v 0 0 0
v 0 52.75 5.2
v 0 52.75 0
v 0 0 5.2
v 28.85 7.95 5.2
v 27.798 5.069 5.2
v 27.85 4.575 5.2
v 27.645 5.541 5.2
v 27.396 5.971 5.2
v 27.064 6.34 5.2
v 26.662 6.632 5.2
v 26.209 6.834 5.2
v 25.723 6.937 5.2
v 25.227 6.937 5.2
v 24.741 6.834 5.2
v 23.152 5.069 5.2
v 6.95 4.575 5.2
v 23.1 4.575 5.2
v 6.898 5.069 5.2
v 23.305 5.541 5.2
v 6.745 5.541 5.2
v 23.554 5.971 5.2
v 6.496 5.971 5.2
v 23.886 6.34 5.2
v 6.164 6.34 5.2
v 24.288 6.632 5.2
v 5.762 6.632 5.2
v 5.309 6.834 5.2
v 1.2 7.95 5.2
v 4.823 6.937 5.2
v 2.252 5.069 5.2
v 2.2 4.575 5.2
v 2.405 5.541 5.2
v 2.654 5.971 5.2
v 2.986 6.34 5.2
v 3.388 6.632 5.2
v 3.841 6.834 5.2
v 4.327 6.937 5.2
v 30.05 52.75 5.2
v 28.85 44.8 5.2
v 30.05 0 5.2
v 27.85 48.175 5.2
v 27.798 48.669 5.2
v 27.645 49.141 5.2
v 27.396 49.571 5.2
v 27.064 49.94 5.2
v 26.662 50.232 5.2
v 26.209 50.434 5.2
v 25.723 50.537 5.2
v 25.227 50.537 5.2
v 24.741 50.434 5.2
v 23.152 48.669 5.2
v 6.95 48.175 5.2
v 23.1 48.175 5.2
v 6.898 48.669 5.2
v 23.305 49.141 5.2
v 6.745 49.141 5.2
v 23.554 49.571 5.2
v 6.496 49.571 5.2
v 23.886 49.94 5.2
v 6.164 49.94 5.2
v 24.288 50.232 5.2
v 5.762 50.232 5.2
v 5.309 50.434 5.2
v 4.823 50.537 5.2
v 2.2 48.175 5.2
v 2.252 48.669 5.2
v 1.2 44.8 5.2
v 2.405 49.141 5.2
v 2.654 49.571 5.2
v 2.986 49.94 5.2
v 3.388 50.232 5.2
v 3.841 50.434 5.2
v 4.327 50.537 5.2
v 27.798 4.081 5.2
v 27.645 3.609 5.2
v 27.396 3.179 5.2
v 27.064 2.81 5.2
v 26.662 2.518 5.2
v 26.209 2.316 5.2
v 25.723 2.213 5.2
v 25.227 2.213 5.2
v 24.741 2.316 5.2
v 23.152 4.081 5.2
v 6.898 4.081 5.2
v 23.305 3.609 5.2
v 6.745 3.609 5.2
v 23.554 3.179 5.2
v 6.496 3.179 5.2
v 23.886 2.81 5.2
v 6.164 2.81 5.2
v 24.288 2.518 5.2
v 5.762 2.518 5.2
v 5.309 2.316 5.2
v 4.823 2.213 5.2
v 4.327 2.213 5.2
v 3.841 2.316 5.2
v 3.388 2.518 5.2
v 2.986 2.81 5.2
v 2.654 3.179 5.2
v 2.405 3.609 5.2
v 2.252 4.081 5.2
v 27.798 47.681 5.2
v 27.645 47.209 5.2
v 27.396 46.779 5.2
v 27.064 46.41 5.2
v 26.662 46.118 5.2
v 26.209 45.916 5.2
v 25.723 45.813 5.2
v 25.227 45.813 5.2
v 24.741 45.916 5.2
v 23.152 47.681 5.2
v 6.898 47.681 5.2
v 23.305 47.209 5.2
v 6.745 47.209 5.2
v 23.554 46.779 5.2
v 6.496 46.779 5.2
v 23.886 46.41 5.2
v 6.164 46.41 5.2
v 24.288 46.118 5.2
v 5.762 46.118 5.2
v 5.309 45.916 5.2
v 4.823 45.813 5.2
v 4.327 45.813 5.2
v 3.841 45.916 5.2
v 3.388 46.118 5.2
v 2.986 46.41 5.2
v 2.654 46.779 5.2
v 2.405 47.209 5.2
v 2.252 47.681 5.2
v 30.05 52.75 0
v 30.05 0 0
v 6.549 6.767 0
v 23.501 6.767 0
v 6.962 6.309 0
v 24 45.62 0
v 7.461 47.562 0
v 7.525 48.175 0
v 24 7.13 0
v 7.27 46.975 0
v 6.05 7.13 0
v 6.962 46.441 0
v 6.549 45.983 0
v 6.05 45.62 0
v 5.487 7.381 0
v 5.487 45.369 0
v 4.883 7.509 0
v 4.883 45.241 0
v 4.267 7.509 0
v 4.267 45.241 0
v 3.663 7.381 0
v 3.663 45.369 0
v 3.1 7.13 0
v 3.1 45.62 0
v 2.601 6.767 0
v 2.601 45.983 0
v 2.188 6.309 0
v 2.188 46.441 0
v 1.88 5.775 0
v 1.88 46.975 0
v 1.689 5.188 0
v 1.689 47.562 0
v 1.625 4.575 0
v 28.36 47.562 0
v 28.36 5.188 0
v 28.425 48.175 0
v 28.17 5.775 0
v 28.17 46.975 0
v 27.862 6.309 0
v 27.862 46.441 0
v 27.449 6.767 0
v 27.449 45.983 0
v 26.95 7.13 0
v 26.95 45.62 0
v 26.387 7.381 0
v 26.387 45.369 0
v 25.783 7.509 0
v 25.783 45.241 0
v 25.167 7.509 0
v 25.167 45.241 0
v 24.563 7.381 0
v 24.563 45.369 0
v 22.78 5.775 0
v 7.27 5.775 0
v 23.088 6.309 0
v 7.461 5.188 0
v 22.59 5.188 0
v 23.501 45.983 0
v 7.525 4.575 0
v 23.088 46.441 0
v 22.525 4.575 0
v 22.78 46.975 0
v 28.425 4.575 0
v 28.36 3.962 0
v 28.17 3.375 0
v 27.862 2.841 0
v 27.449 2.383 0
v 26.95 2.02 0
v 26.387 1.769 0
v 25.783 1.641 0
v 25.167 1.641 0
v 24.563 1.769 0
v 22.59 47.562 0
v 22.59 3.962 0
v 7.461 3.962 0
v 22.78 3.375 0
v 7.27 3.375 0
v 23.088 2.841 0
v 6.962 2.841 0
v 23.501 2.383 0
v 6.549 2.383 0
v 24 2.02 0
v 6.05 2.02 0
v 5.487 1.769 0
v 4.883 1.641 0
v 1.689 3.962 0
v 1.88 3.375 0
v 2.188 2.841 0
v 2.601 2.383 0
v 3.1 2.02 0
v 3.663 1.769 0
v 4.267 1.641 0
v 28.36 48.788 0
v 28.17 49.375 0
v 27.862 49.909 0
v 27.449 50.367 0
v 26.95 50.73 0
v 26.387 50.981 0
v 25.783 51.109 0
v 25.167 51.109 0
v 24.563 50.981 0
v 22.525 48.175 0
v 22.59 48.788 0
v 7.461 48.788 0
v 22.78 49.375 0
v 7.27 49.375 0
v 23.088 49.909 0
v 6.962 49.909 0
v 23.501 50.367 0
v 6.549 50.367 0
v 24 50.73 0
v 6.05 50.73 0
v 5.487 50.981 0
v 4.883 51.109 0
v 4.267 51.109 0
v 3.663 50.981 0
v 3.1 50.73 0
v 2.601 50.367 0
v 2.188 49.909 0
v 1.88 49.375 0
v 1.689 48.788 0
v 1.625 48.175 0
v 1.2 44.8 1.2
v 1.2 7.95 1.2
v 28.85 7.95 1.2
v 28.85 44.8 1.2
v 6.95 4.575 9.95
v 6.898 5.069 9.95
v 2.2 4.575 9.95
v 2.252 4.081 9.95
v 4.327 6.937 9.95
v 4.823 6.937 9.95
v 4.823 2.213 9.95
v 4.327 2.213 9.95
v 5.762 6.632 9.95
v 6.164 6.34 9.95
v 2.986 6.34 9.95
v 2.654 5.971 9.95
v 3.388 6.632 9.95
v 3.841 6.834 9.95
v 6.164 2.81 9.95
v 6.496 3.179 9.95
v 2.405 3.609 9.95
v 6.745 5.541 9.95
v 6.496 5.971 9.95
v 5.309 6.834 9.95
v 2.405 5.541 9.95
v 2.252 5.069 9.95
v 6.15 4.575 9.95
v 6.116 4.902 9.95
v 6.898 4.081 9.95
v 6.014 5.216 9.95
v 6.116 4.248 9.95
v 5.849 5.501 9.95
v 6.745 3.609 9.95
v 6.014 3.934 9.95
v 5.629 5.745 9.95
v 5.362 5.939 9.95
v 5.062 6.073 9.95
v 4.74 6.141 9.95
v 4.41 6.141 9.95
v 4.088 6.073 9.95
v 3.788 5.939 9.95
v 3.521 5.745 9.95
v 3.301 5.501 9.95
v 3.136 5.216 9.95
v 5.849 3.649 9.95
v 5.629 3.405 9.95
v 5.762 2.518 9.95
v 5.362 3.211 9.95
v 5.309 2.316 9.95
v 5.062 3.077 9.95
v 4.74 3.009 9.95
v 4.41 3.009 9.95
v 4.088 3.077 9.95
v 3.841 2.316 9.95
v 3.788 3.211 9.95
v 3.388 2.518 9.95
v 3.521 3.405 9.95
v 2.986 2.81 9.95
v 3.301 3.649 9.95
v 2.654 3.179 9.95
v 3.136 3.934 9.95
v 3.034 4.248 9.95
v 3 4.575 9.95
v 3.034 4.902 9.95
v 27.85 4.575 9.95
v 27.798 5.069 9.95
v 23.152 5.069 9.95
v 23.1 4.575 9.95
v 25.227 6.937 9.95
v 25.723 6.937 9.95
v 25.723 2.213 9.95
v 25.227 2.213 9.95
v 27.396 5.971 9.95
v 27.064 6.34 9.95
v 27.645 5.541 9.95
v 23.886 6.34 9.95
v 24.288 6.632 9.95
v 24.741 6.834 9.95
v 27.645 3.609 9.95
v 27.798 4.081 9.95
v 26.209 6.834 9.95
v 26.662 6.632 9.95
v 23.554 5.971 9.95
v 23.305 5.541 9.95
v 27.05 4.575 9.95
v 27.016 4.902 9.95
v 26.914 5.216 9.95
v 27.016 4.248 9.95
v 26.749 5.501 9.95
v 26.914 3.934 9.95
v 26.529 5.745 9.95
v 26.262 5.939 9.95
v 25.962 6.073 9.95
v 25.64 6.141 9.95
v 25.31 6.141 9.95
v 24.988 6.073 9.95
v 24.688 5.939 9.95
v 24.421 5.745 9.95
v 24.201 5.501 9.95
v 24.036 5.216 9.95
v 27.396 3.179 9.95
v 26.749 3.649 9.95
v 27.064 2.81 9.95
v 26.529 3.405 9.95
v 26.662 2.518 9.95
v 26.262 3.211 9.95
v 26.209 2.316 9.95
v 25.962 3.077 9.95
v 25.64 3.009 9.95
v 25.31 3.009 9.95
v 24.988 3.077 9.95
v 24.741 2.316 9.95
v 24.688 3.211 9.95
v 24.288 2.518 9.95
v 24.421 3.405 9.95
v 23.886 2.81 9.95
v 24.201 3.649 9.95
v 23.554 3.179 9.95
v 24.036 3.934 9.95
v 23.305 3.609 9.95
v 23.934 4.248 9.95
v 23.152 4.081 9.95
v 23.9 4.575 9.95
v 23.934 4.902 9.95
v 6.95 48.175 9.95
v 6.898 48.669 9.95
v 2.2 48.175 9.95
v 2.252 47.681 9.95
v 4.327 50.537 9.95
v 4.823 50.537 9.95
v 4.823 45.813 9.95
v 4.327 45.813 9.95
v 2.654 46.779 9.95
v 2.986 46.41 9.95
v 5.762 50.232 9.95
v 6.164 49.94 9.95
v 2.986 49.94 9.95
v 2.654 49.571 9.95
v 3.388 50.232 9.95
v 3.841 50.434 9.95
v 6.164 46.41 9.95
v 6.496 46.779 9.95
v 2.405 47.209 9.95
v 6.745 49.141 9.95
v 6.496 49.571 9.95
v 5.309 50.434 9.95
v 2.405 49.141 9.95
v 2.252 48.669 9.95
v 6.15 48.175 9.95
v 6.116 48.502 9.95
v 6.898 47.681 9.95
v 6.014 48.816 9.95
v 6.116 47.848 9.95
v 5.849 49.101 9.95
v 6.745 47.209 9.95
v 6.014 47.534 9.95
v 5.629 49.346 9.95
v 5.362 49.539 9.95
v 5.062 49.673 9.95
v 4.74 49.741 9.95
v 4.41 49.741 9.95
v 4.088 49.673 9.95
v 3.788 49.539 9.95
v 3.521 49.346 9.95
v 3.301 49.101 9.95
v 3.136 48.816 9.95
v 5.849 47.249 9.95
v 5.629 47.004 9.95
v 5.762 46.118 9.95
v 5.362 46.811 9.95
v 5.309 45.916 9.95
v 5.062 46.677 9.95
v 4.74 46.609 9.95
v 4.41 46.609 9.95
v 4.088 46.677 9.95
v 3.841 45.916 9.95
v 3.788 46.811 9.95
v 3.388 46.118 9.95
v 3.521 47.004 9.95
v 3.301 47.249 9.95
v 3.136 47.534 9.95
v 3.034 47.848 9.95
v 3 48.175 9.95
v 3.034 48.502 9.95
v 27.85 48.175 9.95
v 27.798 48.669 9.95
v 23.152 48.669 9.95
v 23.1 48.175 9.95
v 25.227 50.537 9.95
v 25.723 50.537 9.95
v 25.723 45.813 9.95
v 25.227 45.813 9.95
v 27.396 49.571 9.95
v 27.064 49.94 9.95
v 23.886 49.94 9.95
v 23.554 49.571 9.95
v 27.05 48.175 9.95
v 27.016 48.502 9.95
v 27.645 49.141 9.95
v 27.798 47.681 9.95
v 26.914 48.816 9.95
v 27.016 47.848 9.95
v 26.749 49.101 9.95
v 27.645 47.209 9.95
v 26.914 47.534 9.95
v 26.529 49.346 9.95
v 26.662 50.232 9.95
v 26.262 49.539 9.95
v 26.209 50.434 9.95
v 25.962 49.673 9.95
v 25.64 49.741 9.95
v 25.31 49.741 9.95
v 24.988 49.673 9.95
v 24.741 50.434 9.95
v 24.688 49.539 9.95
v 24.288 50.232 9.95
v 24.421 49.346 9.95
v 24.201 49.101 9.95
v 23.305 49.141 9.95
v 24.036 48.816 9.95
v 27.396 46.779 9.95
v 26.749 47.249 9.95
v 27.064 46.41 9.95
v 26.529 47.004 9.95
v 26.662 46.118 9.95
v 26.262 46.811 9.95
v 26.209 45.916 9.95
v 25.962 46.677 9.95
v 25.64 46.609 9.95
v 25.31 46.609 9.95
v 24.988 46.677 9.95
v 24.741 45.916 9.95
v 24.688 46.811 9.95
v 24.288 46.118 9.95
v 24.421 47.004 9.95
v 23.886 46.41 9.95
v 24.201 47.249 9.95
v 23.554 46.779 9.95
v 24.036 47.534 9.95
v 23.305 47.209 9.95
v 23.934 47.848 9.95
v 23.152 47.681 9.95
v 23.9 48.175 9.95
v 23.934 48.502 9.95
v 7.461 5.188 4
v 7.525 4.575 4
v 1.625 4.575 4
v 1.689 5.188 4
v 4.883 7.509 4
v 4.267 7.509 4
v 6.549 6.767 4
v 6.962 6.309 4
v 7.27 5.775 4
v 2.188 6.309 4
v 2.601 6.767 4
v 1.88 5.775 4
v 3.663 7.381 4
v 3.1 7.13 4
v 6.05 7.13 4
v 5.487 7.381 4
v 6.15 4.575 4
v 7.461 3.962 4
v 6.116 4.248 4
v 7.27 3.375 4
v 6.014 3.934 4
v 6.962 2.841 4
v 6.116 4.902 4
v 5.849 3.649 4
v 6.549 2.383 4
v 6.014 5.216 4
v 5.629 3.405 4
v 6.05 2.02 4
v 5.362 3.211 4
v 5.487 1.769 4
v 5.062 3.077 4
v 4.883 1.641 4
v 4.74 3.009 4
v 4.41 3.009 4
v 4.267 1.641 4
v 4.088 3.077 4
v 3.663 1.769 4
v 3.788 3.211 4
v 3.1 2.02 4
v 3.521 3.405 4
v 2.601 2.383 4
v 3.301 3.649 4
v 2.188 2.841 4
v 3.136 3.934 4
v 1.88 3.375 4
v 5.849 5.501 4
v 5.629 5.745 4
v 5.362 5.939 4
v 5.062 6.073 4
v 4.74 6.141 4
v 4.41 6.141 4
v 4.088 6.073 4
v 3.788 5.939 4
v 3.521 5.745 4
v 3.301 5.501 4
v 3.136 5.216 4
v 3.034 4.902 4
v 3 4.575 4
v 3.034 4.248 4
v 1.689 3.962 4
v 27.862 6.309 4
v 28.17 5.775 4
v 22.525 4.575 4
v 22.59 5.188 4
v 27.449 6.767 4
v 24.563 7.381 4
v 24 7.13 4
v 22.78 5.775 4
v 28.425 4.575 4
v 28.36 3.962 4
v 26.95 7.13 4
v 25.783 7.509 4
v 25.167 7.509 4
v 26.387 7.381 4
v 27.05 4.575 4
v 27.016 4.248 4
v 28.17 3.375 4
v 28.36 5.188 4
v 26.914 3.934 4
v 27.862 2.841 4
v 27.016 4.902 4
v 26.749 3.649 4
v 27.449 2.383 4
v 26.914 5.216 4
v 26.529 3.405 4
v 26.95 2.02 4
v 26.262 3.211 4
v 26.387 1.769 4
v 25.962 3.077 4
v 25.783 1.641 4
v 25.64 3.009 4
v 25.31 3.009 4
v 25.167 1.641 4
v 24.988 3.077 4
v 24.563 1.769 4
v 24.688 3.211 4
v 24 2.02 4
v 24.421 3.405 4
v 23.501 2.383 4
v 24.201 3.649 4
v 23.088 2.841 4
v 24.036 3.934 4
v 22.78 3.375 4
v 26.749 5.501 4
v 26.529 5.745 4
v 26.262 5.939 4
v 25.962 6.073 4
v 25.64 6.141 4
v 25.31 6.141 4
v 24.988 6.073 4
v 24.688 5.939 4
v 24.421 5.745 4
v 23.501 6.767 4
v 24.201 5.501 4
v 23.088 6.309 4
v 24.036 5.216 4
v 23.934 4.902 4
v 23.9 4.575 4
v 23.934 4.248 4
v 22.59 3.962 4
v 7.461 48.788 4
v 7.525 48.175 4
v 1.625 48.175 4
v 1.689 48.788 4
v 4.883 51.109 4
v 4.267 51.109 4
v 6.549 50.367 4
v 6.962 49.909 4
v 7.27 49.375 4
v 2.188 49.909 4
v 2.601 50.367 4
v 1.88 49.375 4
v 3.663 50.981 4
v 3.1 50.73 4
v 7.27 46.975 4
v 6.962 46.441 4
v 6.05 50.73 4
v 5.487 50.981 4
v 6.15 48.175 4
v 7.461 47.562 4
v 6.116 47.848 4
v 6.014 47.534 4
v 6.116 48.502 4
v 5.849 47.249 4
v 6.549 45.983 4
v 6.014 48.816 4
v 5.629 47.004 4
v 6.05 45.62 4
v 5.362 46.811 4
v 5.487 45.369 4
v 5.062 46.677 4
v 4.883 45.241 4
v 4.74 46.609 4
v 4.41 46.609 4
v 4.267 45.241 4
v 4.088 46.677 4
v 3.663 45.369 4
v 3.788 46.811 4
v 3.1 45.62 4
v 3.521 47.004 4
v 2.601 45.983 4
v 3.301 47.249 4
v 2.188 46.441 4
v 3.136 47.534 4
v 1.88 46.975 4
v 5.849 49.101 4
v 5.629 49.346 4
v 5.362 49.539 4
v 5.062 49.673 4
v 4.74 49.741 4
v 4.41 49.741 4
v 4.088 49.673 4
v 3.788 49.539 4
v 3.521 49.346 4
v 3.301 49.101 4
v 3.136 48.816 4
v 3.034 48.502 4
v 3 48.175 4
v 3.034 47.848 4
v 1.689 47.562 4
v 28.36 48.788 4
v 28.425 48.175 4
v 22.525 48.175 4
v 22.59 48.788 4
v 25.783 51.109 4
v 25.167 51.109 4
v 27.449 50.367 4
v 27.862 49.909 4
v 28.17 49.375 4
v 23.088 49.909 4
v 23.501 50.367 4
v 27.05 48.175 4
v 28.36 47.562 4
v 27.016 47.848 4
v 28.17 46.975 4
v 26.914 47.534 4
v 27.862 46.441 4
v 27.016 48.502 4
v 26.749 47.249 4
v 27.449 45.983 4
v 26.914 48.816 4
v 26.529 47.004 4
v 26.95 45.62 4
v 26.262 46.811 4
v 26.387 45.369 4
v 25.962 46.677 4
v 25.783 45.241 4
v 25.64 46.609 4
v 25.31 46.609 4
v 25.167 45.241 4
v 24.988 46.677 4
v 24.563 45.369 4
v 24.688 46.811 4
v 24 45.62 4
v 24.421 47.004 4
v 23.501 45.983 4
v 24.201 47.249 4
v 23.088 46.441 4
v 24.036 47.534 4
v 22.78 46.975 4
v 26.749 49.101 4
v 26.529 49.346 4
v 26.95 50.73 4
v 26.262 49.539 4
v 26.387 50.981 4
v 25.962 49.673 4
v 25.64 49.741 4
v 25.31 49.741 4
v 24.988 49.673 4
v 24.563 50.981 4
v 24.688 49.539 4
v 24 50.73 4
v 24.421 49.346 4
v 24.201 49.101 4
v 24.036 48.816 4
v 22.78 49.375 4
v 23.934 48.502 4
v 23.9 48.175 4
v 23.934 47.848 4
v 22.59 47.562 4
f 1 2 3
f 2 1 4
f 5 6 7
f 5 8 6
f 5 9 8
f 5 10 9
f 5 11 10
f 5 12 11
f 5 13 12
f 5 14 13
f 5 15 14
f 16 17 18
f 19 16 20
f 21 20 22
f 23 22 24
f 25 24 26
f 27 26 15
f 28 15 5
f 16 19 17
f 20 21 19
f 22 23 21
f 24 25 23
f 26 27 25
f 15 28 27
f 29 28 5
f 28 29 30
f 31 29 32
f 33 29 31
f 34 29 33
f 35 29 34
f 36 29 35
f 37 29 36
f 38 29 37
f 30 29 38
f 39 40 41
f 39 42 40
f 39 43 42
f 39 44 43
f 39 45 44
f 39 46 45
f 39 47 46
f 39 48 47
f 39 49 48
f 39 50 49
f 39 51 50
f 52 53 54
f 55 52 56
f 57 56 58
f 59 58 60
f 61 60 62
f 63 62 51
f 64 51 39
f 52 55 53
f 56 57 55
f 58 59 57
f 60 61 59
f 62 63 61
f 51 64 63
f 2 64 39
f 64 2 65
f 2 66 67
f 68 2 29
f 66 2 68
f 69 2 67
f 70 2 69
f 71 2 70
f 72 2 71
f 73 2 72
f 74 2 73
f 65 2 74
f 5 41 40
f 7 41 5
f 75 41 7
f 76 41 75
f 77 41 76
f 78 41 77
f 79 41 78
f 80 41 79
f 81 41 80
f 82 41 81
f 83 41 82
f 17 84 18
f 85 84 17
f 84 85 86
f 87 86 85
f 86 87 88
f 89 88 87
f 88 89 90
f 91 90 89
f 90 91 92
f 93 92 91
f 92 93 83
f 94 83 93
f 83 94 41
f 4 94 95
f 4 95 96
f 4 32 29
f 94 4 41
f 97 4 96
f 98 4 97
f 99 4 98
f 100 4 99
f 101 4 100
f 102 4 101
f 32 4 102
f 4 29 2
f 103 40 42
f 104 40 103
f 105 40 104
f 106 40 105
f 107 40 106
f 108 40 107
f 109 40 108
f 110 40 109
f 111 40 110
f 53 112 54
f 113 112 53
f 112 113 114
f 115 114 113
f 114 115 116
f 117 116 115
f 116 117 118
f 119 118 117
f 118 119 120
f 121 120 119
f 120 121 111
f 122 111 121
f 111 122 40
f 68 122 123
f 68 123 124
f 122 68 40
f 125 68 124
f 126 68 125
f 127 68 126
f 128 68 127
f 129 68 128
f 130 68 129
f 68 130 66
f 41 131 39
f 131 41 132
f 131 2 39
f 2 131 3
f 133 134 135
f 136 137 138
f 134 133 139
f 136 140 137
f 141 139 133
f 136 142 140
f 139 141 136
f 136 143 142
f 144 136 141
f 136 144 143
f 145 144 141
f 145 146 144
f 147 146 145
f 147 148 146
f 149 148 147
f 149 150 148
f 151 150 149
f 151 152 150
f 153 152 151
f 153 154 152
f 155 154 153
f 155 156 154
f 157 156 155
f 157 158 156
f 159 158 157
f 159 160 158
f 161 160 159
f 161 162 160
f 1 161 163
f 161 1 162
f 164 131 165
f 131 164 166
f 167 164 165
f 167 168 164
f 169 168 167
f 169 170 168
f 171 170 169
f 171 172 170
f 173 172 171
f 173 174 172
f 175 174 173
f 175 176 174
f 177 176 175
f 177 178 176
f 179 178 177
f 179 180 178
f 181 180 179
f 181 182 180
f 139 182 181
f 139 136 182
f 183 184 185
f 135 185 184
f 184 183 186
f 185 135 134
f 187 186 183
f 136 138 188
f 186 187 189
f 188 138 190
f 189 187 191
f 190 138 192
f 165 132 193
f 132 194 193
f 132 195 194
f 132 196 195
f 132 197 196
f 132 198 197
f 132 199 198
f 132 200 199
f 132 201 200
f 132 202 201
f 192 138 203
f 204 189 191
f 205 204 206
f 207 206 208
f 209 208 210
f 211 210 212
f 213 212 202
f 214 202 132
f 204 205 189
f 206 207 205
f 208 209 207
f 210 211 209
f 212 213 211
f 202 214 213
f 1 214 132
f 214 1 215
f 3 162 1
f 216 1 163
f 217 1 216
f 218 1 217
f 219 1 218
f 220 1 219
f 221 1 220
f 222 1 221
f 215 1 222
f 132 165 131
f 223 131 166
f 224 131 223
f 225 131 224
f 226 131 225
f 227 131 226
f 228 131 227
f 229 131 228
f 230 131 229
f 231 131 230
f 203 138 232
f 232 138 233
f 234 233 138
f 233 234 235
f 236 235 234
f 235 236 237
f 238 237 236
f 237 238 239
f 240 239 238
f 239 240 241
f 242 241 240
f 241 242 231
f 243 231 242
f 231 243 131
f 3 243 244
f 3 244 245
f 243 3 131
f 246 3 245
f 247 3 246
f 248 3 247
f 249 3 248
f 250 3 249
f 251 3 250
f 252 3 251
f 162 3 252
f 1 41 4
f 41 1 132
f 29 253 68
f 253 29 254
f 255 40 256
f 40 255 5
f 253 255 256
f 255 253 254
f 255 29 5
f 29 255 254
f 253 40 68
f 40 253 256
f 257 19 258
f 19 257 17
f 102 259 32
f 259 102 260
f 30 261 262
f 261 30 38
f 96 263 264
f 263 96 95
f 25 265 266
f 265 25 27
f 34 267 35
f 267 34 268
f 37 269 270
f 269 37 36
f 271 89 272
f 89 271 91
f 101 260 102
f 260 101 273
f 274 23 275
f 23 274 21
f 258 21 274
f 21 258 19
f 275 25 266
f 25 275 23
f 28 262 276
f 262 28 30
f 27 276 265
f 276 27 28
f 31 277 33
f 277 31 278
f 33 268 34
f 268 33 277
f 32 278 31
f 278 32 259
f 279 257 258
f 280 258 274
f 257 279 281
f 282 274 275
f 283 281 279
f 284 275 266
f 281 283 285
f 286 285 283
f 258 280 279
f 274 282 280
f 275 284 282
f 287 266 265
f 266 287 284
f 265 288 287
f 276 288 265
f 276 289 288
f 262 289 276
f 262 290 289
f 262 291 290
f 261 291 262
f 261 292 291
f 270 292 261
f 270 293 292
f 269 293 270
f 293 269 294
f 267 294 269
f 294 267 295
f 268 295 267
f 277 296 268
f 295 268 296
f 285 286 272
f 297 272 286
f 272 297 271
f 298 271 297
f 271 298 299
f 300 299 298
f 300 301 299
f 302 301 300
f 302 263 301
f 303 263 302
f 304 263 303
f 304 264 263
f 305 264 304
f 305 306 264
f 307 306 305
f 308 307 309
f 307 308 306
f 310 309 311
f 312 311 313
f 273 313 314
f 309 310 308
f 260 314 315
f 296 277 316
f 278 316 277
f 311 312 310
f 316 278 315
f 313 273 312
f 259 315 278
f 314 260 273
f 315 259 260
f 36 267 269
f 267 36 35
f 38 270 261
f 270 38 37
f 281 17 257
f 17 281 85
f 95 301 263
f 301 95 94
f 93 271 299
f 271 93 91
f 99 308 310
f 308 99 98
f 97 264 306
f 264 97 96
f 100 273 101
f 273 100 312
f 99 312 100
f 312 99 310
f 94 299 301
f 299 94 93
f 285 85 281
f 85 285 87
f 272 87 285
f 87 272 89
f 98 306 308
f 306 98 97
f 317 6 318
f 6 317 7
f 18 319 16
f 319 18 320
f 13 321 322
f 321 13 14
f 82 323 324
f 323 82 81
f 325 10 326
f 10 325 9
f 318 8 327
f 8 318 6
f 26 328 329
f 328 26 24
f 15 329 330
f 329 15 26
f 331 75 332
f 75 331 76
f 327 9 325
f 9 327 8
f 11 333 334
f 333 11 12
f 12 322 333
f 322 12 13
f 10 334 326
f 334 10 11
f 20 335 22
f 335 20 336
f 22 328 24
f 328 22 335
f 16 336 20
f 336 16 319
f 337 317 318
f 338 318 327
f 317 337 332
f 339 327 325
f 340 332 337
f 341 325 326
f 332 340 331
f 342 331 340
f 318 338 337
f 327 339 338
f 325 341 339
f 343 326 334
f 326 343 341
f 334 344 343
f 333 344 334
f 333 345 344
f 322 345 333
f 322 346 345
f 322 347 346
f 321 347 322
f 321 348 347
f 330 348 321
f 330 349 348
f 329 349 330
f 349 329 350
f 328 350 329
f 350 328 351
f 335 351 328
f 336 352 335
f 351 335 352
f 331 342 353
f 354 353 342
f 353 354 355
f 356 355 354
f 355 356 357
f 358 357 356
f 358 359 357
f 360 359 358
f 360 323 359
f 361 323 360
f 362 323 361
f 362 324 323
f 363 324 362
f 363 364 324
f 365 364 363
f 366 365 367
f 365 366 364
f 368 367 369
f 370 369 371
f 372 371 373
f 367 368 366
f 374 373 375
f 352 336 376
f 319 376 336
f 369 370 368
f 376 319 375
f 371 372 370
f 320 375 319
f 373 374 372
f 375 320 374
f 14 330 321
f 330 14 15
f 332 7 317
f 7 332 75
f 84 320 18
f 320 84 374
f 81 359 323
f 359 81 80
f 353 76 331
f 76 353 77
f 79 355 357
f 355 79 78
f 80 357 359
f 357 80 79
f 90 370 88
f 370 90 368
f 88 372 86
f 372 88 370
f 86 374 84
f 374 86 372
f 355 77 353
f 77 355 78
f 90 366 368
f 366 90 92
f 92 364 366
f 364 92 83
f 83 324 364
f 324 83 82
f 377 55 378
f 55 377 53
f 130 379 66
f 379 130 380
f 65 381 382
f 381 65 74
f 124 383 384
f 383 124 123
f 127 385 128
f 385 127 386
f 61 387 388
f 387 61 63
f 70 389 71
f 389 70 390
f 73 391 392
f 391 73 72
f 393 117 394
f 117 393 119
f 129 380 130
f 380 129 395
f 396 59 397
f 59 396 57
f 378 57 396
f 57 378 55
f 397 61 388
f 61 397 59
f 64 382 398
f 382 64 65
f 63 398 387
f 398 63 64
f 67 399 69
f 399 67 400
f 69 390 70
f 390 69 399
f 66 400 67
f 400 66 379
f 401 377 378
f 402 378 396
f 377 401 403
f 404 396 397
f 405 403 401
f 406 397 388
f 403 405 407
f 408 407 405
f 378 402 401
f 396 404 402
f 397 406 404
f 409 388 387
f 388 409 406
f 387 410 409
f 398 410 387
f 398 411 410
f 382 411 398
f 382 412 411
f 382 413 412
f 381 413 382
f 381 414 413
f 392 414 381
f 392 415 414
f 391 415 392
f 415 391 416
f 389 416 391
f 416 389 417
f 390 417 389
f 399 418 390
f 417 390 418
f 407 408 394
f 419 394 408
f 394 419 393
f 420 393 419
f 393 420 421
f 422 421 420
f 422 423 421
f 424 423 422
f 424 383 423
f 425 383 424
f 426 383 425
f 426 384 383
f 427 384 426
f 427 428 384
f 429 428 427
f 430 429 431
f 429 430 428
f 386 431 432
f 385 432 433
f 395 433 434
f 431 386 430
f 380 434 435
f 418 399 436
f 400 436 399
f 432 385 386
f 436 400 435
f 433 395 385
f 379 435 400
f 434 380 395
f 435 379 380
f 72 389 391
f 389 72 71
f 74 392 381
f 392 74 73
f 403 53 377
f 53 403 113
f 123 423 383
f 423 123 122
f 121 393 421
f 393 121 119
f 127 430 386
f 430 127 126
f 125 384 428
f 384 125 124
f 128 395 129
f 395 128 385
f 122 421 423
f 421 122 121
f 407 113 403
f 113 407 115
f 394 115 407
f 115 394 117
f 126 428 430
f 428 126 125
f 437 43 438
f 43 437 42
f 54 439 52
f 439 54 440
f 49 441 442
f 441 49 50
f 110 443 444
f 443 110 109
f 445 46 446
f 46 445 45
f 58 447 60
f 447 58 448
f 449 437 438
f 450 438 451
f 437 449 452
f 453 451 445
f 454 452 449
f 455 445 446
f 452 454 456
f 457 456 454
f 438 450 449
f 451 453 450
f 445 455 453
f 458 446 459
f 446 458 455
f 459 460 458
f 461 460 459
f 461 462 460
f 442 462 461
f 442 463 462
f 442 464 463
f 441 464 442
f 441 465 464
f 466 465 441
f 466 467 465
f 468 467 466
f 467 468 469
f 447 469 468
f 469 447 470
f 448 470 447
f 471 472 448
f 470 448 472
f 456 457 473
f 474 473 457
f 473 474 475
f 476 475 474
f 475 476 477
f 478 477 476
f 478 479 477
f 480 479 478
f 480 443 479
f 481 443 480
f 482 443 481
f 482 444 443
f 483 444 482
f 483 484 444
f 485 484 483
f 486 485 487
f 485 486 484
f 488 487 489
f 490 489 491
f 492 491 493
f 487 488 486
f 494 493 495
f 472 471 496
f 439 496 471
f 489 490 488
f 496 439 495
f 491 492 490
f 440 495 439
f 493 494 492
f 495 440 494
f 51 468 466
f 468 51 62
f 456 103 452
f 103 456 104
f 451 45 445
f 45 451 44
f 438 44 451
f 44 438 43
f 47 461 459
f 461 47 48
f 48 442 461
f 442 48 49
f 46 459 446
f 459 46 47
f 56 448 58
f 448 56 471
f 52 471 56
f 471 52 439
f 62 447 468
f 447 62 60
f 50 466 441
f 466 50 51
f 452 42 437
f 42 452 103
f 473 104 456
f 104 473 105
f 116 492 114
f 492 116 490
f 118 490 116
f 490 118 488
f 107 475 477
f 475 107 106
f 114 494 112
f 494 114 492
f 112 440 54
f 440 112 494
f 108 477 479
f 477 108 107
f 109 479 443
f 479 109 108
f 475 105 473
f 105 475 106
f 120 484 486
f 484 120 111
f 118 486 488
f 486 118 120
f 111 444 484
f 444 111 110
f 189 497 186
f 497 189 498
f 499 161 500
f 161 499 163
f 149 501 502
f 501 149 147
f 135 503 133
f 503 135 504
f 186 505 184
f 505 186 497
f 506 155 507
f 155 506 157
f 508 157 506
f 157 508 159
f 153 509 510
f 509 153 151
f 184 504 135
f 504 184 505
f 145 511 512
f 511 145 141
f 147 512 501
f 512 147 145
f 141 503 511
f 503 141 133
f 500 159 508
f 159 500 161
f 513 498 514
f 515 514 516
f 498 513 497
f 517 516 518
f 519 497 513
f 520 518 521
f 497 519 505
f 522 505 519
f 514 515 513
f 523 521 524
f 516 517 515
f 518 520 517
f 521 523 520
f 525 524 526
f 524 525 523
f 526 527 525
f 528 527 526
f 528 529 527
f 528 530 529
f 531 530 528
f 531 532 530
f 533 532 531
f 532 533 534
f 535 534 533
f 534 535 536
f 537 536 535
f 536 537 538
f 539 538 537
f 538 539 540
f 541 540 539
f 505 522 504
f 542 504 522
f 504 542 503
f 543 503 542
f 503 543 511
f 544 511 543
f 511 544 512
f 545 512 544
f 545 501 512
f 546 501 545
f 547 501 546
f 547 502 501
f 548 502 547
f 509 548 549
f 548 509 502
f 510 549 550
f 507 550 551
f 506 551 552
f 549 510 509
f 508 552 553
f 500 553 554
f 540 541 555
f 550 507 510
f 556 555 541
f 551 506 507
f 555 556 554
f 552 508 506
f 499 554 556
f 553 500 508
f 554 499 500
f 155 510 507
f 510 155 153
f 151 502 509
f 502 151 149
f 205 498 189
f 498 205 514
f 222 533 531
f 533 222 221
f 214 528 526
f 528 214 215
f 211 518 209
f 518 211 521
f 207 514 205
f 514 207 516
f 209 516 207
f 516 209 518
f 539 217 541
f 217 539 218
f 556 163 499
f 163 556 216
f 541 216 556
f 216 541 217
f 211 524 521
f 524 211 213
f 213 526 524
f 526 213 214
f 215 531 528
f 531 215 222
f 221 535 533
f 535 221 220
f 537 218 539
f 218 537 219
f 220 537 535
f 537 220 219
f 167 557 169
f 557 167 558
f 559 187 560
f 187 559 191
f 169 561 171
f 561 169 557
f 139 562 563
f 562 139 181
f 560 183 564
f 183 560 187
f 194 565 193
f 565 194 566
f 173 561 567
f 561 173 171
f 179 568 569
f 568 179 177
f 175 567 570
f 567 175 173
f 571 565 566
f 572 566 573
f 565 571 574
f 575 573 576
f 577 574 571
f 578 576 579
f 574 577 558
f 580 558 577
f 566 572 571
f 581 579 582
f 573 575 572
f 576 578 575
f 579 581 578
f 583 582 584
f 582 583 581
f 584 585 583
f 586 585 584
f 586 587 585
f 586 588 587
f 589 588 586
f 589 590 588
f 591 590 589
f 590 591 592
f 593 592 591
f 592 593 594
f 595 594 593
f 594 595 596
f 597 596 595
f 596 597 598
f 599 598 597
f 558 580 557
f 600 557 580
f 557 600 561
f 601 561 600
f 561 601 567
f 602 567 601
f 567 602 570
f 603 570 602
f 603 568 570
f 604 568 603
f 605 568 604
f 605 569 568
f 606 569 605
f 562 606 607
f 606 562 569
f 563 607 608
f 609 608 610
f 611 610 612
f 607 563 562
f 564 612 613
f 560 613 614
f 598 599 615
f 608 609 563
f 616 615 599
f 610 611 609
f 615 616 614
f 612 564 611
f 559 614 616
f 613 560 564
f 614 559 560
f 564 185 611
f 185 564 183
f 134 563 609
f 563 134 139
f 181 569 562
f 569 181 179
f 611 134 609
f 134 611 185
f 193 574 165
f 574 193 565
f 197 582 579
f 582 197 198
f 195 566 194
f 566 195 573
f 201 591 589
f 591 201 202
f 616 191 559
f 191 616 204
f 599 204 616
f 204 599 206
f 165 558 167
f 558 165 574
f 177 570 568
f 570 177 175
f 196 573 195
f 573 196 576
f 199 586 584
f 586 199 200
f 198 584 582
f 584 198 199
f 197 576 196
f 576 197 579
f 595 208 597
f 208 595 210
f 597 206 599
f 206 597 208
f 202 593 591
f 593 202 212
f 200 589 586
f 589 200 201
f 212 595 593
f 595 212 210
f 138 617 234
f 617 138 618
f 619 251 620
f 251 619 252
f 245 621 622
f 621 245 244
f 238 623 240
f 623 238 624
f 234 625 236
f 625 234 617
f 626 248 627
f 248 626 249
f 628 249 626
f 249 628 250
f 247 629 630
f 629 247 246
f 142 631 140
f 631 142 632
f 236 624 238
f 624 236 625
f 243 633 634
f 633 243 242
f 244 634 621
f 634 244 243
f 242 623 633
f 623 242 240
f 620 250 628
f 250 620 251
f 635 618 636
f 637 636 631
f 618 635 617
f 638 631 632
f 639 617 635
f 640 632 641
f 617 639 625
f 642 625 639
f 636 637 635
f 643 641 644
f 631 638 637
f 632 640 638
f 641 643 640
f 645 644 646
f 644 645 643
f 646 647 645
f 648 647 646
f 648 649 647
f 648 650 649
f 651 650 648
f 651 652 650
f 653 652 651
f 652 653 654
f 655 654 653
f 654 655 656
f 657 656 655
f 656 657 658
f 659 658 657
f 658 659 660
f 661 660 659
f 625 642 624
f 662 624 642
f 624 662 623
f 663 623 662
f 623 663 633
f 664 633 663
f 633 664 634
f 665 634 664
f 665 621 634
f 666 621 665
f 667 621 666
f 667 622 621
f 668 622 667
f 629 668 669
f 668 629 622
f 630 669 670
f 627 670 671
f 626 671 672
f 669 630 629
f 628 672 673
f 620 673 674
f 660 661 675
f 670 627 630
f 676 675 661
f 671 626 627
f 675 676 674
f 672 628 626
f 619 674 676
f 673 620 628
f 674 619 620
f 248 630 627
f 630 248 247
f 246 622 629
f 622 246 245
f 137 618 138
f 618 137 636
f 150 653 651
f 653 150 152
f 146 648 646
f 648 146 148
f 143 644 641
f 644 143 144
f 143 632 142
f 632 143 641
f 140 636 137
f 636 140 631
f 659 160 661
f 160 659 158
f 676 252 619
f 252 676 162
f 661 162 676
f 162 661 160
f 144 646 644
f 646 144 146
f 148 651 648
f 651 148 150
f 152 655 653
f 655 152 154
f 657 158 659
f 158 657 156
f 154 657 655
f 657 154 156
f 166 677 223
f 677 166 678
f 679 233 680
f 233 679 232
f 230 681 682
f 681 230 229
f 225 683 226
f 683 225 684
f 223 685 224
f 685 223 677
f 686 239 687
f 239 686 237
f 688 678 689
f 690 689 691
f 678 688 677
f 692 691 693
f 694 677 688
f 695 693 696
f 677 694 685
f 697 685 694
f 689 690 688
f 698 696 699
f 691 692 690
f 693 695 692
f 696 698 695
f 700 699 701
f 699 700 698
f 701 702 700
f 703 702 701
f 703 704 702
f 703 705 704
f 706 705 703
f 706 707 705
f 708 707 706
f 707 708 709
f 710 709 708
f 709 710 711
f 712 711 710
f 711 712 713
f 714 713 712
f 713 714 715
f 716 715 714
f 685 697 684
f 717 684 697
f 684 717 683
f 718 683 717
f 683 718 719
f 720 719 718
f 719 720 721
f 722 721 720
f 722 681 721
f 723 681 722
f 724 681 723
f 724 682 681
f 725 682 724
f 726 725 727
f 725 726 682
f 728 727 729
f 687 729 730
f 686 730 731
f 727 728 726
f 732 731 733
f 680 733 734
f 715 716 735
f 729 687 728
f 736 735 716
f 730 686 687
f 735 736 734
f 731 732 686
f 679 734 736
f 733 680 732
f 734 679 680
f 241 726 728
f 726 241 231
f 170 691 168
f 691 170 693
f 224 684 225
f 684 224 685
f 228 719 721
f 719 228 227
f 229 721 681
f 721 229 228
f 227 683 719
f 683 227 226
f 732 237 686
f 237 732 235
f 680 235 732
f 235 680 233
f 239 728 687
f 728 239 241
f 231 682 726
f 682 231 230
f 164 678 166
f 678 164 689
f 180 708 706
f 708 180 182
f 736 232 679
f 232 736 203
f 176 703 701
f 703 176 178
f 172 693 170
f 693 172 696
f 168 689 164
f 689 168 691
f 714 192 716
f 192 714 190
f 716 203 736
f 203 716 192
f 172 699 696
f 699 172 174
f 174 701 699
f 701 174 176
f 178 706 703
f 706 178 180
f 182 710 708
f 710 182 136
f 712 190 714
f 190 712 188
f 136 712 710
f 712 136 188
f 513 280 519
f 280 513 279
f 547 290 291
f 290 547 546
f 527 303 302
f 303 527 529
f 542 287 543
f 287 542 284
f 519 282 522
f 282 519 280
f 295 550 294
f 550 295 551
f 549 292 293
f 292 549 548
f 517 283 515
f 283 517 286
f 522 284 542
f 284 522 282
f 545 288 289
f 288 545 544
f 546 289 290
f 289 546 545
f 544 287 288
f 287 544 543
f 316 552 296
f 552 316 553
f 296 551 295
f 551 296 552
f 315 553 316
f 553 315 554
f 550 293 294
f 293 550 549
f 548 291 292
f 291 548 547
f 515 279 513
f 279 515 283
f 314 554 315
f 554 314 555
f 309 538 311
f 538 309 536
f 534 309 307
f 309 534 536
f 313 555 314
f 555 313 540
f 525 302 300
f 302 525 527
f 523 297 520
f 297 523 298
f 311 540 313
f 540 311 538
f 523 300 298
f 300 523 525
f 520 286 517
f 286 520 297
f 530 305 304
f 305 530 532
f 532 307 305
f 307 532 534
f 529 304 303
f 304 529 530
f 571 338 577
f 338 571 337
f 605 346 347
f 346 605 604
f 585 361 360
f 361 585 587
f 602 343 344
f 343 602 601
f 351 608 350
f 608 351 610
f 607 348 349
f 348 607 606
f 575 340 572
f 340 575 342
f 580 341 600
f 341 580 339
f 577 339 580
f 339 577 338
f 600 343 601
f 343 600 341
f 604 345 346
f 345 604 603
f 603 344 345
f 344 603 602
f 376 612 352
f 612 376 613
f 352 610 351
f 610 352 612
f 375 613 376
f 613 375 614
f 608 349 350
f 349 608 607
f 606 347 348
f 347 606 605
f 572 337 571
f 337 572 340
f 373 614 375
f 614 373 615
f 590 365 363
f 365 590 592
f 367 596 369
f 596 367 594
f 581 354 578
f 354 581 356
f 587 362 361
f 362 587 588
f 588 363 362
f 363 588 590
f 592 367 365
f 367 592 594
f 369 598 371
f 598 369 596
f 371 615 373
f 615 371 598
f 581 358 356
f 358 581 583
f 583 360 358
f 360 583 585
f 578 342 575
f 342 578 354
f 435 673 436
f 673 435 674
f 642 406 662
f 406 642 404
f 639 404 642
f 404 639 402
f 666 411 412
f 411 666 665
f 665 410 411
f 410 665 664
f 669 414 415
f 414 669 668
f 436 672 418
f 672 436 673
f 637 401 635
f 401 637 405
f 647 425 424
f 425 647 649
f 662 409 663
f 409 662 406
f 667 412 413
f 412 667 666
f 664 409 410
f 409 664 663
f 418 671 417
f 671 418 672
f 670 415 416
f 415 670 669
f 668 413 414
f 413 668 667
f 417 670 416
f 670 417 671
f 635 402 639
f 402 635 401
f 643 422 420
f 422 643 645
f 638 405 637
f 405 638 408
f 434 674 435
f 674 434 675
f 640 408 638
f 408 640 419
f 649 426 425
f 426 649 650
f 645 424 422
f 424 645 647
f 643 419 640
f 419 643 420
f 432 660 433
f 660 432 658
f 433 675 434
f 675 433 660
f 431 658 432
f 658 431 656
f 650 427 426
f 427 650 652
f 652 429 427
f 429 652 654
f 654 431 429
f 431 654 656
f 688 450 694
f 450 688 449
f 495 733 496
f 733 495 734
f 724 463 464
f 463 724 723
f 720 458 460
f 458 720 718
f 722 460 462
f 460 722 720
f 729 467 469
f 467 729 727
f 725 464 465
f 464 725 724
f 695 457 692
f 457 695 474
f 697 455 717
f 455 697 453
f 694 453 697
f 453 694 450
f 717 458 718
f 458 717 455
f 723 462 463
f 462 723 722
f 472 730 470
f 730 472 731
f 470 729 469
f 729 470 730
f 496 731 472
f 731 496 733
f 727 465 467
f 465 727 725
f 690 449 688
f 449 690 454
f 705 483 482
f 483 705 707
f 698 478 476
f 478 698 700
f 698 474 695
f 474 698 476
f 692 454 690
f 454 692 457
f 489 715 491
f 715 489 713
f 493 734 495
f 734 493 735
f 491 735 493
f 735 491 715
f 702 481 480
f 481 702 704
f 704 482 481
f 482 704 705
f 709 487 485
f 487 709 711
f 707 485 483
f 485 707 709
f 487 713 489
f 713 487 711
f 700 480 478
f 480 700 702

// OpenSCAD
//------------------------------------------------
// 2 - base of the NodeMCU + DHT22 box
//
// author: Alessandro Paganelli 
// e-mail: alessandro.paganelli@gmail.com
// github: https://github.com/allep
// license: GPL-3.0-or-later
// 
// Description
// This case is designed to be used with a NodeMCU 
// Amica ESP-8266 board and a DHT22 temperature
// and humidity sensor.
//
// All sizes are expressed in mm.
//------------------------------------------------

// Set face number to a sufficiently high number.
$fn = 30;

//------------------------------------------------
// Debug mode
// Set DEBUG_MODE to 1 to simulate the actual 
// screw positions, to validate the design.
DEBUG_MODE = 0;

//------------------------------------------------
// Variables

//------------------------------------------------
// Pockets
// Let's increase a little bit pocket sizs in order 
// to allow for easier simulation.
POCKET_TOLERANCE = 0.1;

//------------------------------------------------
// Hat

WALL_THICKNESS = 1.2;
BASE_THICKNESS = 1.2;
BASE_THICKNESS_SCREWS = 5.2;

CYLINDER_THICKNESS = 0.8;

// For M3 screws it must be 1.5 mm + 5% tolerance
CYLINDER_RADIUS = 1.575;
CYLINDER_HEIGHT = 4.75;

// tolerances
CYLINDER_GAP = 1.0;

//------------------------------------------------
// Board size
// Based on NodeMCU Amica ESP-8266 board.
SCREW_DISTANCE_Y = 43.6;
SCREW_DISTANCE_X = 20.9;

//------------------------------------------------
// Screw sizes (M3)

SCREW_RADIUS = 1.5;
Z_SCREW_LEN = 19;
Z_SCREW_HEAD_LEN = 4.0;
SCREW_HEAD_RADIUS = 2.85;
SCREW_HEAD_RADIUS_GAP = 0.1;

//------------------------------------------------
// Actual script

// First compute sizes
// Note: these must match with those of 01_body.scad
x_len_outer = SCREW_DISTANCE_X + 2*(CYLINDER_RADIUS + CYLINDER_THICKNESS + CYLINDER_GAP + WALL_THICKNESS);
y_len_outer = SCREW_DISTANCE_Y + 2*(CYLINDER_RADIUS + CYLINDER_THICKNESS + CYLINDER_GAP + WALL_THICKNESS);

x_screw_head_base = 2*(CYLINDER_THICKNESS + CYLINDER_RADIUS + CYLINDER_GAP) + WALL_THICKNESS;

// Now compute inner sizes
y_len_inner = y_len_outer - 2*x_screw_head_base;
x_len_inner = x_len_outer - 2*WALL_THICKNESS;
z_len_inner = BASE_THICKNESS_SCREWS - BASE_THICKNESS;

echo("Computed X len = ", x_len_outer, " and Y len = ", y_len_outer);
echo("Computed screw head base = ", x_screw_head_base);

difference() {
    union()
    {
        difference() {
            cube([x_len_outer, y_len_outer, BASE_THICKNESS_SCREWS]);
            translate([WALL_THICKNESS, x_screw_head_base, BASE_THICKNESS])
            cube([x_len_inner, y_len_inner, z_len_inner + POCKET_TOLERANCE]);
        }

        // screw cylinders (without screw actual hole)
        for (j = [0:1]) {
            for ( i = [0:1] ) {
                // compute the shift needed
                shift_x = i*SCREW_DISTANCE_X + CYLINDER_THICKNESS + CYLINDER_RADIUS + CYLINDER_GAP + WALL_THICKNESS;
                shift_y = j*SCREW_DISTANCE_Y + CYLINDER_THICKNESS + CYLINDER_RADIUS + CYLINDER_GAP + WALL_THICKNESS;
                shift_z = BASE_THICKNESS_SCREWS;
                translate([shift_x, shift_y, shift_z])
                cylinder(h = CYLINDER_HEIGHT, r = CYLINDER_RADIUS + CYLINDER_THICKNESS);
            }
        }
    }
    // screw head holes
    for (j = [0:1]) {
        for ( i = [0:1] ) {
            // compute the shift needed
            shift_x = i*SCREW_DISTANCE_X + CYLINDER_THICKNESS + CYLINDER_RADIUS + CYLINDER_GAP + WALL_THICKNESS;
            shift_y = j*SCREW_DISTANCE_Y + CYLINDER_THICKNESS + CYLINDER_RADIUS + CYLINDER_GAP + WALL_THICKNESS;
            shift_z = - POCKET_TOLERANCE;
            translate([shift_x, shift_y, shift_z])
            cylinder(h = Z_SCREW_HEAD_LEN + POCKET_TOLERANCE, r = SCREW_HEAD_RADIUS + SCREW_HEAD_RADIUS_GAP);
        }
    }
    // actual screw holes
    for (j = [0:1]) {
        for ( i = [0:1] ) {
            // compute the shift needed
            shift_x = i*SCREW_DISTANCE_X + CYLINDER_THICKNESS + CYLINDER_RADIUS + CYLINDER_GAP + WALL_THICKNESS;
            shift_y = j*SCREW_DISTANCE_Y + CYLINDER_THICKNESS + CYLINDER_RADIUS + CYLINDER_GAP + WALL_THICKNESS;
            shift_z = - POCKET_TOLERANCE;
            translate([shift_x, shift_y, shift_z])
            cylinder(h = BASE_THICKNESS_SCREWS + CYLINDER_HEIGHT + 2*POCKET_TOLERANCE, r = CYLINDER_RADIUS);
        }
    }
}

//------------------------------------------------
// Size check
// Draw a simulated version of 4 screws in the right 
// positions, in order to validate the design.

if (DEBUG_MODE == 1) {
    screw1_x = WALL_THICKNESS + CYLINDER_GAP + CYLINDER_THICKNESS + CYLINDER_RADIUS;
    screw1_y = WALL_THICKNESS + CYLINDER_GAP + CYLINDER_THICKNESS + CYLINDER_RADIUS;
    color("red", 0.5)
    translate([screw1_x, screw1_y, 0])
    cylinder(h = Z_SCREW_LEN, r = SCREW_RADIUS);

    screw2_x = WALL_THICKNESS + CYLINDER_GAP + CYLINDER_THICKNESS + CYLINDER_RADIUS;
    screw2_y = WALL_THICKNESS + CYLINDER_GAP + CYLINDER_THICKNESS + CYLINDER_RADIUS + SCREW_DISTANCE_Y;
    color("red", 0.5)
    translate([screw2_x, screw2_y, 0])
    cylinder(h = Z_SCREW_LEN, r = SCREW_RADIUS);

    screw3_x = WALL_THICKNESS + CYLINDER_GAP + CYLINDER_THICKNESS + CYLINDER_RADIUS + SCREW_DISTANCE_X;
    screw3_y = WALL_THICKNESS + CYLINDER_GAP + CYLINDER_THICKNESS + CYLINDER_RADIUS;
    color("red", 0.5)
    translate([screw3_x, screw3_y, 0])
    cylinder(h = Z_SCREW_LEN, r = SCREW_RADIUS);

    screw4_x = WALL_THICKNESS + CYLINDER_GAP + CYLINDER_THICKNESS + CYLINDER_RADIUS + SCREW_DISTANCE_X;
    screw4_y = WALL_THICKNESS + CYLINDER_GAP + CYLINDER_THICKNESS + CYLINDER_RADIUS + SCREW_DISTANCE_Y;
    color("red", 0.5)
    translate([screw4_x, screw4_y, 0])
    cylinder(h = Z_SCREW_LEN, r = SCREW_RADIUS);
}
